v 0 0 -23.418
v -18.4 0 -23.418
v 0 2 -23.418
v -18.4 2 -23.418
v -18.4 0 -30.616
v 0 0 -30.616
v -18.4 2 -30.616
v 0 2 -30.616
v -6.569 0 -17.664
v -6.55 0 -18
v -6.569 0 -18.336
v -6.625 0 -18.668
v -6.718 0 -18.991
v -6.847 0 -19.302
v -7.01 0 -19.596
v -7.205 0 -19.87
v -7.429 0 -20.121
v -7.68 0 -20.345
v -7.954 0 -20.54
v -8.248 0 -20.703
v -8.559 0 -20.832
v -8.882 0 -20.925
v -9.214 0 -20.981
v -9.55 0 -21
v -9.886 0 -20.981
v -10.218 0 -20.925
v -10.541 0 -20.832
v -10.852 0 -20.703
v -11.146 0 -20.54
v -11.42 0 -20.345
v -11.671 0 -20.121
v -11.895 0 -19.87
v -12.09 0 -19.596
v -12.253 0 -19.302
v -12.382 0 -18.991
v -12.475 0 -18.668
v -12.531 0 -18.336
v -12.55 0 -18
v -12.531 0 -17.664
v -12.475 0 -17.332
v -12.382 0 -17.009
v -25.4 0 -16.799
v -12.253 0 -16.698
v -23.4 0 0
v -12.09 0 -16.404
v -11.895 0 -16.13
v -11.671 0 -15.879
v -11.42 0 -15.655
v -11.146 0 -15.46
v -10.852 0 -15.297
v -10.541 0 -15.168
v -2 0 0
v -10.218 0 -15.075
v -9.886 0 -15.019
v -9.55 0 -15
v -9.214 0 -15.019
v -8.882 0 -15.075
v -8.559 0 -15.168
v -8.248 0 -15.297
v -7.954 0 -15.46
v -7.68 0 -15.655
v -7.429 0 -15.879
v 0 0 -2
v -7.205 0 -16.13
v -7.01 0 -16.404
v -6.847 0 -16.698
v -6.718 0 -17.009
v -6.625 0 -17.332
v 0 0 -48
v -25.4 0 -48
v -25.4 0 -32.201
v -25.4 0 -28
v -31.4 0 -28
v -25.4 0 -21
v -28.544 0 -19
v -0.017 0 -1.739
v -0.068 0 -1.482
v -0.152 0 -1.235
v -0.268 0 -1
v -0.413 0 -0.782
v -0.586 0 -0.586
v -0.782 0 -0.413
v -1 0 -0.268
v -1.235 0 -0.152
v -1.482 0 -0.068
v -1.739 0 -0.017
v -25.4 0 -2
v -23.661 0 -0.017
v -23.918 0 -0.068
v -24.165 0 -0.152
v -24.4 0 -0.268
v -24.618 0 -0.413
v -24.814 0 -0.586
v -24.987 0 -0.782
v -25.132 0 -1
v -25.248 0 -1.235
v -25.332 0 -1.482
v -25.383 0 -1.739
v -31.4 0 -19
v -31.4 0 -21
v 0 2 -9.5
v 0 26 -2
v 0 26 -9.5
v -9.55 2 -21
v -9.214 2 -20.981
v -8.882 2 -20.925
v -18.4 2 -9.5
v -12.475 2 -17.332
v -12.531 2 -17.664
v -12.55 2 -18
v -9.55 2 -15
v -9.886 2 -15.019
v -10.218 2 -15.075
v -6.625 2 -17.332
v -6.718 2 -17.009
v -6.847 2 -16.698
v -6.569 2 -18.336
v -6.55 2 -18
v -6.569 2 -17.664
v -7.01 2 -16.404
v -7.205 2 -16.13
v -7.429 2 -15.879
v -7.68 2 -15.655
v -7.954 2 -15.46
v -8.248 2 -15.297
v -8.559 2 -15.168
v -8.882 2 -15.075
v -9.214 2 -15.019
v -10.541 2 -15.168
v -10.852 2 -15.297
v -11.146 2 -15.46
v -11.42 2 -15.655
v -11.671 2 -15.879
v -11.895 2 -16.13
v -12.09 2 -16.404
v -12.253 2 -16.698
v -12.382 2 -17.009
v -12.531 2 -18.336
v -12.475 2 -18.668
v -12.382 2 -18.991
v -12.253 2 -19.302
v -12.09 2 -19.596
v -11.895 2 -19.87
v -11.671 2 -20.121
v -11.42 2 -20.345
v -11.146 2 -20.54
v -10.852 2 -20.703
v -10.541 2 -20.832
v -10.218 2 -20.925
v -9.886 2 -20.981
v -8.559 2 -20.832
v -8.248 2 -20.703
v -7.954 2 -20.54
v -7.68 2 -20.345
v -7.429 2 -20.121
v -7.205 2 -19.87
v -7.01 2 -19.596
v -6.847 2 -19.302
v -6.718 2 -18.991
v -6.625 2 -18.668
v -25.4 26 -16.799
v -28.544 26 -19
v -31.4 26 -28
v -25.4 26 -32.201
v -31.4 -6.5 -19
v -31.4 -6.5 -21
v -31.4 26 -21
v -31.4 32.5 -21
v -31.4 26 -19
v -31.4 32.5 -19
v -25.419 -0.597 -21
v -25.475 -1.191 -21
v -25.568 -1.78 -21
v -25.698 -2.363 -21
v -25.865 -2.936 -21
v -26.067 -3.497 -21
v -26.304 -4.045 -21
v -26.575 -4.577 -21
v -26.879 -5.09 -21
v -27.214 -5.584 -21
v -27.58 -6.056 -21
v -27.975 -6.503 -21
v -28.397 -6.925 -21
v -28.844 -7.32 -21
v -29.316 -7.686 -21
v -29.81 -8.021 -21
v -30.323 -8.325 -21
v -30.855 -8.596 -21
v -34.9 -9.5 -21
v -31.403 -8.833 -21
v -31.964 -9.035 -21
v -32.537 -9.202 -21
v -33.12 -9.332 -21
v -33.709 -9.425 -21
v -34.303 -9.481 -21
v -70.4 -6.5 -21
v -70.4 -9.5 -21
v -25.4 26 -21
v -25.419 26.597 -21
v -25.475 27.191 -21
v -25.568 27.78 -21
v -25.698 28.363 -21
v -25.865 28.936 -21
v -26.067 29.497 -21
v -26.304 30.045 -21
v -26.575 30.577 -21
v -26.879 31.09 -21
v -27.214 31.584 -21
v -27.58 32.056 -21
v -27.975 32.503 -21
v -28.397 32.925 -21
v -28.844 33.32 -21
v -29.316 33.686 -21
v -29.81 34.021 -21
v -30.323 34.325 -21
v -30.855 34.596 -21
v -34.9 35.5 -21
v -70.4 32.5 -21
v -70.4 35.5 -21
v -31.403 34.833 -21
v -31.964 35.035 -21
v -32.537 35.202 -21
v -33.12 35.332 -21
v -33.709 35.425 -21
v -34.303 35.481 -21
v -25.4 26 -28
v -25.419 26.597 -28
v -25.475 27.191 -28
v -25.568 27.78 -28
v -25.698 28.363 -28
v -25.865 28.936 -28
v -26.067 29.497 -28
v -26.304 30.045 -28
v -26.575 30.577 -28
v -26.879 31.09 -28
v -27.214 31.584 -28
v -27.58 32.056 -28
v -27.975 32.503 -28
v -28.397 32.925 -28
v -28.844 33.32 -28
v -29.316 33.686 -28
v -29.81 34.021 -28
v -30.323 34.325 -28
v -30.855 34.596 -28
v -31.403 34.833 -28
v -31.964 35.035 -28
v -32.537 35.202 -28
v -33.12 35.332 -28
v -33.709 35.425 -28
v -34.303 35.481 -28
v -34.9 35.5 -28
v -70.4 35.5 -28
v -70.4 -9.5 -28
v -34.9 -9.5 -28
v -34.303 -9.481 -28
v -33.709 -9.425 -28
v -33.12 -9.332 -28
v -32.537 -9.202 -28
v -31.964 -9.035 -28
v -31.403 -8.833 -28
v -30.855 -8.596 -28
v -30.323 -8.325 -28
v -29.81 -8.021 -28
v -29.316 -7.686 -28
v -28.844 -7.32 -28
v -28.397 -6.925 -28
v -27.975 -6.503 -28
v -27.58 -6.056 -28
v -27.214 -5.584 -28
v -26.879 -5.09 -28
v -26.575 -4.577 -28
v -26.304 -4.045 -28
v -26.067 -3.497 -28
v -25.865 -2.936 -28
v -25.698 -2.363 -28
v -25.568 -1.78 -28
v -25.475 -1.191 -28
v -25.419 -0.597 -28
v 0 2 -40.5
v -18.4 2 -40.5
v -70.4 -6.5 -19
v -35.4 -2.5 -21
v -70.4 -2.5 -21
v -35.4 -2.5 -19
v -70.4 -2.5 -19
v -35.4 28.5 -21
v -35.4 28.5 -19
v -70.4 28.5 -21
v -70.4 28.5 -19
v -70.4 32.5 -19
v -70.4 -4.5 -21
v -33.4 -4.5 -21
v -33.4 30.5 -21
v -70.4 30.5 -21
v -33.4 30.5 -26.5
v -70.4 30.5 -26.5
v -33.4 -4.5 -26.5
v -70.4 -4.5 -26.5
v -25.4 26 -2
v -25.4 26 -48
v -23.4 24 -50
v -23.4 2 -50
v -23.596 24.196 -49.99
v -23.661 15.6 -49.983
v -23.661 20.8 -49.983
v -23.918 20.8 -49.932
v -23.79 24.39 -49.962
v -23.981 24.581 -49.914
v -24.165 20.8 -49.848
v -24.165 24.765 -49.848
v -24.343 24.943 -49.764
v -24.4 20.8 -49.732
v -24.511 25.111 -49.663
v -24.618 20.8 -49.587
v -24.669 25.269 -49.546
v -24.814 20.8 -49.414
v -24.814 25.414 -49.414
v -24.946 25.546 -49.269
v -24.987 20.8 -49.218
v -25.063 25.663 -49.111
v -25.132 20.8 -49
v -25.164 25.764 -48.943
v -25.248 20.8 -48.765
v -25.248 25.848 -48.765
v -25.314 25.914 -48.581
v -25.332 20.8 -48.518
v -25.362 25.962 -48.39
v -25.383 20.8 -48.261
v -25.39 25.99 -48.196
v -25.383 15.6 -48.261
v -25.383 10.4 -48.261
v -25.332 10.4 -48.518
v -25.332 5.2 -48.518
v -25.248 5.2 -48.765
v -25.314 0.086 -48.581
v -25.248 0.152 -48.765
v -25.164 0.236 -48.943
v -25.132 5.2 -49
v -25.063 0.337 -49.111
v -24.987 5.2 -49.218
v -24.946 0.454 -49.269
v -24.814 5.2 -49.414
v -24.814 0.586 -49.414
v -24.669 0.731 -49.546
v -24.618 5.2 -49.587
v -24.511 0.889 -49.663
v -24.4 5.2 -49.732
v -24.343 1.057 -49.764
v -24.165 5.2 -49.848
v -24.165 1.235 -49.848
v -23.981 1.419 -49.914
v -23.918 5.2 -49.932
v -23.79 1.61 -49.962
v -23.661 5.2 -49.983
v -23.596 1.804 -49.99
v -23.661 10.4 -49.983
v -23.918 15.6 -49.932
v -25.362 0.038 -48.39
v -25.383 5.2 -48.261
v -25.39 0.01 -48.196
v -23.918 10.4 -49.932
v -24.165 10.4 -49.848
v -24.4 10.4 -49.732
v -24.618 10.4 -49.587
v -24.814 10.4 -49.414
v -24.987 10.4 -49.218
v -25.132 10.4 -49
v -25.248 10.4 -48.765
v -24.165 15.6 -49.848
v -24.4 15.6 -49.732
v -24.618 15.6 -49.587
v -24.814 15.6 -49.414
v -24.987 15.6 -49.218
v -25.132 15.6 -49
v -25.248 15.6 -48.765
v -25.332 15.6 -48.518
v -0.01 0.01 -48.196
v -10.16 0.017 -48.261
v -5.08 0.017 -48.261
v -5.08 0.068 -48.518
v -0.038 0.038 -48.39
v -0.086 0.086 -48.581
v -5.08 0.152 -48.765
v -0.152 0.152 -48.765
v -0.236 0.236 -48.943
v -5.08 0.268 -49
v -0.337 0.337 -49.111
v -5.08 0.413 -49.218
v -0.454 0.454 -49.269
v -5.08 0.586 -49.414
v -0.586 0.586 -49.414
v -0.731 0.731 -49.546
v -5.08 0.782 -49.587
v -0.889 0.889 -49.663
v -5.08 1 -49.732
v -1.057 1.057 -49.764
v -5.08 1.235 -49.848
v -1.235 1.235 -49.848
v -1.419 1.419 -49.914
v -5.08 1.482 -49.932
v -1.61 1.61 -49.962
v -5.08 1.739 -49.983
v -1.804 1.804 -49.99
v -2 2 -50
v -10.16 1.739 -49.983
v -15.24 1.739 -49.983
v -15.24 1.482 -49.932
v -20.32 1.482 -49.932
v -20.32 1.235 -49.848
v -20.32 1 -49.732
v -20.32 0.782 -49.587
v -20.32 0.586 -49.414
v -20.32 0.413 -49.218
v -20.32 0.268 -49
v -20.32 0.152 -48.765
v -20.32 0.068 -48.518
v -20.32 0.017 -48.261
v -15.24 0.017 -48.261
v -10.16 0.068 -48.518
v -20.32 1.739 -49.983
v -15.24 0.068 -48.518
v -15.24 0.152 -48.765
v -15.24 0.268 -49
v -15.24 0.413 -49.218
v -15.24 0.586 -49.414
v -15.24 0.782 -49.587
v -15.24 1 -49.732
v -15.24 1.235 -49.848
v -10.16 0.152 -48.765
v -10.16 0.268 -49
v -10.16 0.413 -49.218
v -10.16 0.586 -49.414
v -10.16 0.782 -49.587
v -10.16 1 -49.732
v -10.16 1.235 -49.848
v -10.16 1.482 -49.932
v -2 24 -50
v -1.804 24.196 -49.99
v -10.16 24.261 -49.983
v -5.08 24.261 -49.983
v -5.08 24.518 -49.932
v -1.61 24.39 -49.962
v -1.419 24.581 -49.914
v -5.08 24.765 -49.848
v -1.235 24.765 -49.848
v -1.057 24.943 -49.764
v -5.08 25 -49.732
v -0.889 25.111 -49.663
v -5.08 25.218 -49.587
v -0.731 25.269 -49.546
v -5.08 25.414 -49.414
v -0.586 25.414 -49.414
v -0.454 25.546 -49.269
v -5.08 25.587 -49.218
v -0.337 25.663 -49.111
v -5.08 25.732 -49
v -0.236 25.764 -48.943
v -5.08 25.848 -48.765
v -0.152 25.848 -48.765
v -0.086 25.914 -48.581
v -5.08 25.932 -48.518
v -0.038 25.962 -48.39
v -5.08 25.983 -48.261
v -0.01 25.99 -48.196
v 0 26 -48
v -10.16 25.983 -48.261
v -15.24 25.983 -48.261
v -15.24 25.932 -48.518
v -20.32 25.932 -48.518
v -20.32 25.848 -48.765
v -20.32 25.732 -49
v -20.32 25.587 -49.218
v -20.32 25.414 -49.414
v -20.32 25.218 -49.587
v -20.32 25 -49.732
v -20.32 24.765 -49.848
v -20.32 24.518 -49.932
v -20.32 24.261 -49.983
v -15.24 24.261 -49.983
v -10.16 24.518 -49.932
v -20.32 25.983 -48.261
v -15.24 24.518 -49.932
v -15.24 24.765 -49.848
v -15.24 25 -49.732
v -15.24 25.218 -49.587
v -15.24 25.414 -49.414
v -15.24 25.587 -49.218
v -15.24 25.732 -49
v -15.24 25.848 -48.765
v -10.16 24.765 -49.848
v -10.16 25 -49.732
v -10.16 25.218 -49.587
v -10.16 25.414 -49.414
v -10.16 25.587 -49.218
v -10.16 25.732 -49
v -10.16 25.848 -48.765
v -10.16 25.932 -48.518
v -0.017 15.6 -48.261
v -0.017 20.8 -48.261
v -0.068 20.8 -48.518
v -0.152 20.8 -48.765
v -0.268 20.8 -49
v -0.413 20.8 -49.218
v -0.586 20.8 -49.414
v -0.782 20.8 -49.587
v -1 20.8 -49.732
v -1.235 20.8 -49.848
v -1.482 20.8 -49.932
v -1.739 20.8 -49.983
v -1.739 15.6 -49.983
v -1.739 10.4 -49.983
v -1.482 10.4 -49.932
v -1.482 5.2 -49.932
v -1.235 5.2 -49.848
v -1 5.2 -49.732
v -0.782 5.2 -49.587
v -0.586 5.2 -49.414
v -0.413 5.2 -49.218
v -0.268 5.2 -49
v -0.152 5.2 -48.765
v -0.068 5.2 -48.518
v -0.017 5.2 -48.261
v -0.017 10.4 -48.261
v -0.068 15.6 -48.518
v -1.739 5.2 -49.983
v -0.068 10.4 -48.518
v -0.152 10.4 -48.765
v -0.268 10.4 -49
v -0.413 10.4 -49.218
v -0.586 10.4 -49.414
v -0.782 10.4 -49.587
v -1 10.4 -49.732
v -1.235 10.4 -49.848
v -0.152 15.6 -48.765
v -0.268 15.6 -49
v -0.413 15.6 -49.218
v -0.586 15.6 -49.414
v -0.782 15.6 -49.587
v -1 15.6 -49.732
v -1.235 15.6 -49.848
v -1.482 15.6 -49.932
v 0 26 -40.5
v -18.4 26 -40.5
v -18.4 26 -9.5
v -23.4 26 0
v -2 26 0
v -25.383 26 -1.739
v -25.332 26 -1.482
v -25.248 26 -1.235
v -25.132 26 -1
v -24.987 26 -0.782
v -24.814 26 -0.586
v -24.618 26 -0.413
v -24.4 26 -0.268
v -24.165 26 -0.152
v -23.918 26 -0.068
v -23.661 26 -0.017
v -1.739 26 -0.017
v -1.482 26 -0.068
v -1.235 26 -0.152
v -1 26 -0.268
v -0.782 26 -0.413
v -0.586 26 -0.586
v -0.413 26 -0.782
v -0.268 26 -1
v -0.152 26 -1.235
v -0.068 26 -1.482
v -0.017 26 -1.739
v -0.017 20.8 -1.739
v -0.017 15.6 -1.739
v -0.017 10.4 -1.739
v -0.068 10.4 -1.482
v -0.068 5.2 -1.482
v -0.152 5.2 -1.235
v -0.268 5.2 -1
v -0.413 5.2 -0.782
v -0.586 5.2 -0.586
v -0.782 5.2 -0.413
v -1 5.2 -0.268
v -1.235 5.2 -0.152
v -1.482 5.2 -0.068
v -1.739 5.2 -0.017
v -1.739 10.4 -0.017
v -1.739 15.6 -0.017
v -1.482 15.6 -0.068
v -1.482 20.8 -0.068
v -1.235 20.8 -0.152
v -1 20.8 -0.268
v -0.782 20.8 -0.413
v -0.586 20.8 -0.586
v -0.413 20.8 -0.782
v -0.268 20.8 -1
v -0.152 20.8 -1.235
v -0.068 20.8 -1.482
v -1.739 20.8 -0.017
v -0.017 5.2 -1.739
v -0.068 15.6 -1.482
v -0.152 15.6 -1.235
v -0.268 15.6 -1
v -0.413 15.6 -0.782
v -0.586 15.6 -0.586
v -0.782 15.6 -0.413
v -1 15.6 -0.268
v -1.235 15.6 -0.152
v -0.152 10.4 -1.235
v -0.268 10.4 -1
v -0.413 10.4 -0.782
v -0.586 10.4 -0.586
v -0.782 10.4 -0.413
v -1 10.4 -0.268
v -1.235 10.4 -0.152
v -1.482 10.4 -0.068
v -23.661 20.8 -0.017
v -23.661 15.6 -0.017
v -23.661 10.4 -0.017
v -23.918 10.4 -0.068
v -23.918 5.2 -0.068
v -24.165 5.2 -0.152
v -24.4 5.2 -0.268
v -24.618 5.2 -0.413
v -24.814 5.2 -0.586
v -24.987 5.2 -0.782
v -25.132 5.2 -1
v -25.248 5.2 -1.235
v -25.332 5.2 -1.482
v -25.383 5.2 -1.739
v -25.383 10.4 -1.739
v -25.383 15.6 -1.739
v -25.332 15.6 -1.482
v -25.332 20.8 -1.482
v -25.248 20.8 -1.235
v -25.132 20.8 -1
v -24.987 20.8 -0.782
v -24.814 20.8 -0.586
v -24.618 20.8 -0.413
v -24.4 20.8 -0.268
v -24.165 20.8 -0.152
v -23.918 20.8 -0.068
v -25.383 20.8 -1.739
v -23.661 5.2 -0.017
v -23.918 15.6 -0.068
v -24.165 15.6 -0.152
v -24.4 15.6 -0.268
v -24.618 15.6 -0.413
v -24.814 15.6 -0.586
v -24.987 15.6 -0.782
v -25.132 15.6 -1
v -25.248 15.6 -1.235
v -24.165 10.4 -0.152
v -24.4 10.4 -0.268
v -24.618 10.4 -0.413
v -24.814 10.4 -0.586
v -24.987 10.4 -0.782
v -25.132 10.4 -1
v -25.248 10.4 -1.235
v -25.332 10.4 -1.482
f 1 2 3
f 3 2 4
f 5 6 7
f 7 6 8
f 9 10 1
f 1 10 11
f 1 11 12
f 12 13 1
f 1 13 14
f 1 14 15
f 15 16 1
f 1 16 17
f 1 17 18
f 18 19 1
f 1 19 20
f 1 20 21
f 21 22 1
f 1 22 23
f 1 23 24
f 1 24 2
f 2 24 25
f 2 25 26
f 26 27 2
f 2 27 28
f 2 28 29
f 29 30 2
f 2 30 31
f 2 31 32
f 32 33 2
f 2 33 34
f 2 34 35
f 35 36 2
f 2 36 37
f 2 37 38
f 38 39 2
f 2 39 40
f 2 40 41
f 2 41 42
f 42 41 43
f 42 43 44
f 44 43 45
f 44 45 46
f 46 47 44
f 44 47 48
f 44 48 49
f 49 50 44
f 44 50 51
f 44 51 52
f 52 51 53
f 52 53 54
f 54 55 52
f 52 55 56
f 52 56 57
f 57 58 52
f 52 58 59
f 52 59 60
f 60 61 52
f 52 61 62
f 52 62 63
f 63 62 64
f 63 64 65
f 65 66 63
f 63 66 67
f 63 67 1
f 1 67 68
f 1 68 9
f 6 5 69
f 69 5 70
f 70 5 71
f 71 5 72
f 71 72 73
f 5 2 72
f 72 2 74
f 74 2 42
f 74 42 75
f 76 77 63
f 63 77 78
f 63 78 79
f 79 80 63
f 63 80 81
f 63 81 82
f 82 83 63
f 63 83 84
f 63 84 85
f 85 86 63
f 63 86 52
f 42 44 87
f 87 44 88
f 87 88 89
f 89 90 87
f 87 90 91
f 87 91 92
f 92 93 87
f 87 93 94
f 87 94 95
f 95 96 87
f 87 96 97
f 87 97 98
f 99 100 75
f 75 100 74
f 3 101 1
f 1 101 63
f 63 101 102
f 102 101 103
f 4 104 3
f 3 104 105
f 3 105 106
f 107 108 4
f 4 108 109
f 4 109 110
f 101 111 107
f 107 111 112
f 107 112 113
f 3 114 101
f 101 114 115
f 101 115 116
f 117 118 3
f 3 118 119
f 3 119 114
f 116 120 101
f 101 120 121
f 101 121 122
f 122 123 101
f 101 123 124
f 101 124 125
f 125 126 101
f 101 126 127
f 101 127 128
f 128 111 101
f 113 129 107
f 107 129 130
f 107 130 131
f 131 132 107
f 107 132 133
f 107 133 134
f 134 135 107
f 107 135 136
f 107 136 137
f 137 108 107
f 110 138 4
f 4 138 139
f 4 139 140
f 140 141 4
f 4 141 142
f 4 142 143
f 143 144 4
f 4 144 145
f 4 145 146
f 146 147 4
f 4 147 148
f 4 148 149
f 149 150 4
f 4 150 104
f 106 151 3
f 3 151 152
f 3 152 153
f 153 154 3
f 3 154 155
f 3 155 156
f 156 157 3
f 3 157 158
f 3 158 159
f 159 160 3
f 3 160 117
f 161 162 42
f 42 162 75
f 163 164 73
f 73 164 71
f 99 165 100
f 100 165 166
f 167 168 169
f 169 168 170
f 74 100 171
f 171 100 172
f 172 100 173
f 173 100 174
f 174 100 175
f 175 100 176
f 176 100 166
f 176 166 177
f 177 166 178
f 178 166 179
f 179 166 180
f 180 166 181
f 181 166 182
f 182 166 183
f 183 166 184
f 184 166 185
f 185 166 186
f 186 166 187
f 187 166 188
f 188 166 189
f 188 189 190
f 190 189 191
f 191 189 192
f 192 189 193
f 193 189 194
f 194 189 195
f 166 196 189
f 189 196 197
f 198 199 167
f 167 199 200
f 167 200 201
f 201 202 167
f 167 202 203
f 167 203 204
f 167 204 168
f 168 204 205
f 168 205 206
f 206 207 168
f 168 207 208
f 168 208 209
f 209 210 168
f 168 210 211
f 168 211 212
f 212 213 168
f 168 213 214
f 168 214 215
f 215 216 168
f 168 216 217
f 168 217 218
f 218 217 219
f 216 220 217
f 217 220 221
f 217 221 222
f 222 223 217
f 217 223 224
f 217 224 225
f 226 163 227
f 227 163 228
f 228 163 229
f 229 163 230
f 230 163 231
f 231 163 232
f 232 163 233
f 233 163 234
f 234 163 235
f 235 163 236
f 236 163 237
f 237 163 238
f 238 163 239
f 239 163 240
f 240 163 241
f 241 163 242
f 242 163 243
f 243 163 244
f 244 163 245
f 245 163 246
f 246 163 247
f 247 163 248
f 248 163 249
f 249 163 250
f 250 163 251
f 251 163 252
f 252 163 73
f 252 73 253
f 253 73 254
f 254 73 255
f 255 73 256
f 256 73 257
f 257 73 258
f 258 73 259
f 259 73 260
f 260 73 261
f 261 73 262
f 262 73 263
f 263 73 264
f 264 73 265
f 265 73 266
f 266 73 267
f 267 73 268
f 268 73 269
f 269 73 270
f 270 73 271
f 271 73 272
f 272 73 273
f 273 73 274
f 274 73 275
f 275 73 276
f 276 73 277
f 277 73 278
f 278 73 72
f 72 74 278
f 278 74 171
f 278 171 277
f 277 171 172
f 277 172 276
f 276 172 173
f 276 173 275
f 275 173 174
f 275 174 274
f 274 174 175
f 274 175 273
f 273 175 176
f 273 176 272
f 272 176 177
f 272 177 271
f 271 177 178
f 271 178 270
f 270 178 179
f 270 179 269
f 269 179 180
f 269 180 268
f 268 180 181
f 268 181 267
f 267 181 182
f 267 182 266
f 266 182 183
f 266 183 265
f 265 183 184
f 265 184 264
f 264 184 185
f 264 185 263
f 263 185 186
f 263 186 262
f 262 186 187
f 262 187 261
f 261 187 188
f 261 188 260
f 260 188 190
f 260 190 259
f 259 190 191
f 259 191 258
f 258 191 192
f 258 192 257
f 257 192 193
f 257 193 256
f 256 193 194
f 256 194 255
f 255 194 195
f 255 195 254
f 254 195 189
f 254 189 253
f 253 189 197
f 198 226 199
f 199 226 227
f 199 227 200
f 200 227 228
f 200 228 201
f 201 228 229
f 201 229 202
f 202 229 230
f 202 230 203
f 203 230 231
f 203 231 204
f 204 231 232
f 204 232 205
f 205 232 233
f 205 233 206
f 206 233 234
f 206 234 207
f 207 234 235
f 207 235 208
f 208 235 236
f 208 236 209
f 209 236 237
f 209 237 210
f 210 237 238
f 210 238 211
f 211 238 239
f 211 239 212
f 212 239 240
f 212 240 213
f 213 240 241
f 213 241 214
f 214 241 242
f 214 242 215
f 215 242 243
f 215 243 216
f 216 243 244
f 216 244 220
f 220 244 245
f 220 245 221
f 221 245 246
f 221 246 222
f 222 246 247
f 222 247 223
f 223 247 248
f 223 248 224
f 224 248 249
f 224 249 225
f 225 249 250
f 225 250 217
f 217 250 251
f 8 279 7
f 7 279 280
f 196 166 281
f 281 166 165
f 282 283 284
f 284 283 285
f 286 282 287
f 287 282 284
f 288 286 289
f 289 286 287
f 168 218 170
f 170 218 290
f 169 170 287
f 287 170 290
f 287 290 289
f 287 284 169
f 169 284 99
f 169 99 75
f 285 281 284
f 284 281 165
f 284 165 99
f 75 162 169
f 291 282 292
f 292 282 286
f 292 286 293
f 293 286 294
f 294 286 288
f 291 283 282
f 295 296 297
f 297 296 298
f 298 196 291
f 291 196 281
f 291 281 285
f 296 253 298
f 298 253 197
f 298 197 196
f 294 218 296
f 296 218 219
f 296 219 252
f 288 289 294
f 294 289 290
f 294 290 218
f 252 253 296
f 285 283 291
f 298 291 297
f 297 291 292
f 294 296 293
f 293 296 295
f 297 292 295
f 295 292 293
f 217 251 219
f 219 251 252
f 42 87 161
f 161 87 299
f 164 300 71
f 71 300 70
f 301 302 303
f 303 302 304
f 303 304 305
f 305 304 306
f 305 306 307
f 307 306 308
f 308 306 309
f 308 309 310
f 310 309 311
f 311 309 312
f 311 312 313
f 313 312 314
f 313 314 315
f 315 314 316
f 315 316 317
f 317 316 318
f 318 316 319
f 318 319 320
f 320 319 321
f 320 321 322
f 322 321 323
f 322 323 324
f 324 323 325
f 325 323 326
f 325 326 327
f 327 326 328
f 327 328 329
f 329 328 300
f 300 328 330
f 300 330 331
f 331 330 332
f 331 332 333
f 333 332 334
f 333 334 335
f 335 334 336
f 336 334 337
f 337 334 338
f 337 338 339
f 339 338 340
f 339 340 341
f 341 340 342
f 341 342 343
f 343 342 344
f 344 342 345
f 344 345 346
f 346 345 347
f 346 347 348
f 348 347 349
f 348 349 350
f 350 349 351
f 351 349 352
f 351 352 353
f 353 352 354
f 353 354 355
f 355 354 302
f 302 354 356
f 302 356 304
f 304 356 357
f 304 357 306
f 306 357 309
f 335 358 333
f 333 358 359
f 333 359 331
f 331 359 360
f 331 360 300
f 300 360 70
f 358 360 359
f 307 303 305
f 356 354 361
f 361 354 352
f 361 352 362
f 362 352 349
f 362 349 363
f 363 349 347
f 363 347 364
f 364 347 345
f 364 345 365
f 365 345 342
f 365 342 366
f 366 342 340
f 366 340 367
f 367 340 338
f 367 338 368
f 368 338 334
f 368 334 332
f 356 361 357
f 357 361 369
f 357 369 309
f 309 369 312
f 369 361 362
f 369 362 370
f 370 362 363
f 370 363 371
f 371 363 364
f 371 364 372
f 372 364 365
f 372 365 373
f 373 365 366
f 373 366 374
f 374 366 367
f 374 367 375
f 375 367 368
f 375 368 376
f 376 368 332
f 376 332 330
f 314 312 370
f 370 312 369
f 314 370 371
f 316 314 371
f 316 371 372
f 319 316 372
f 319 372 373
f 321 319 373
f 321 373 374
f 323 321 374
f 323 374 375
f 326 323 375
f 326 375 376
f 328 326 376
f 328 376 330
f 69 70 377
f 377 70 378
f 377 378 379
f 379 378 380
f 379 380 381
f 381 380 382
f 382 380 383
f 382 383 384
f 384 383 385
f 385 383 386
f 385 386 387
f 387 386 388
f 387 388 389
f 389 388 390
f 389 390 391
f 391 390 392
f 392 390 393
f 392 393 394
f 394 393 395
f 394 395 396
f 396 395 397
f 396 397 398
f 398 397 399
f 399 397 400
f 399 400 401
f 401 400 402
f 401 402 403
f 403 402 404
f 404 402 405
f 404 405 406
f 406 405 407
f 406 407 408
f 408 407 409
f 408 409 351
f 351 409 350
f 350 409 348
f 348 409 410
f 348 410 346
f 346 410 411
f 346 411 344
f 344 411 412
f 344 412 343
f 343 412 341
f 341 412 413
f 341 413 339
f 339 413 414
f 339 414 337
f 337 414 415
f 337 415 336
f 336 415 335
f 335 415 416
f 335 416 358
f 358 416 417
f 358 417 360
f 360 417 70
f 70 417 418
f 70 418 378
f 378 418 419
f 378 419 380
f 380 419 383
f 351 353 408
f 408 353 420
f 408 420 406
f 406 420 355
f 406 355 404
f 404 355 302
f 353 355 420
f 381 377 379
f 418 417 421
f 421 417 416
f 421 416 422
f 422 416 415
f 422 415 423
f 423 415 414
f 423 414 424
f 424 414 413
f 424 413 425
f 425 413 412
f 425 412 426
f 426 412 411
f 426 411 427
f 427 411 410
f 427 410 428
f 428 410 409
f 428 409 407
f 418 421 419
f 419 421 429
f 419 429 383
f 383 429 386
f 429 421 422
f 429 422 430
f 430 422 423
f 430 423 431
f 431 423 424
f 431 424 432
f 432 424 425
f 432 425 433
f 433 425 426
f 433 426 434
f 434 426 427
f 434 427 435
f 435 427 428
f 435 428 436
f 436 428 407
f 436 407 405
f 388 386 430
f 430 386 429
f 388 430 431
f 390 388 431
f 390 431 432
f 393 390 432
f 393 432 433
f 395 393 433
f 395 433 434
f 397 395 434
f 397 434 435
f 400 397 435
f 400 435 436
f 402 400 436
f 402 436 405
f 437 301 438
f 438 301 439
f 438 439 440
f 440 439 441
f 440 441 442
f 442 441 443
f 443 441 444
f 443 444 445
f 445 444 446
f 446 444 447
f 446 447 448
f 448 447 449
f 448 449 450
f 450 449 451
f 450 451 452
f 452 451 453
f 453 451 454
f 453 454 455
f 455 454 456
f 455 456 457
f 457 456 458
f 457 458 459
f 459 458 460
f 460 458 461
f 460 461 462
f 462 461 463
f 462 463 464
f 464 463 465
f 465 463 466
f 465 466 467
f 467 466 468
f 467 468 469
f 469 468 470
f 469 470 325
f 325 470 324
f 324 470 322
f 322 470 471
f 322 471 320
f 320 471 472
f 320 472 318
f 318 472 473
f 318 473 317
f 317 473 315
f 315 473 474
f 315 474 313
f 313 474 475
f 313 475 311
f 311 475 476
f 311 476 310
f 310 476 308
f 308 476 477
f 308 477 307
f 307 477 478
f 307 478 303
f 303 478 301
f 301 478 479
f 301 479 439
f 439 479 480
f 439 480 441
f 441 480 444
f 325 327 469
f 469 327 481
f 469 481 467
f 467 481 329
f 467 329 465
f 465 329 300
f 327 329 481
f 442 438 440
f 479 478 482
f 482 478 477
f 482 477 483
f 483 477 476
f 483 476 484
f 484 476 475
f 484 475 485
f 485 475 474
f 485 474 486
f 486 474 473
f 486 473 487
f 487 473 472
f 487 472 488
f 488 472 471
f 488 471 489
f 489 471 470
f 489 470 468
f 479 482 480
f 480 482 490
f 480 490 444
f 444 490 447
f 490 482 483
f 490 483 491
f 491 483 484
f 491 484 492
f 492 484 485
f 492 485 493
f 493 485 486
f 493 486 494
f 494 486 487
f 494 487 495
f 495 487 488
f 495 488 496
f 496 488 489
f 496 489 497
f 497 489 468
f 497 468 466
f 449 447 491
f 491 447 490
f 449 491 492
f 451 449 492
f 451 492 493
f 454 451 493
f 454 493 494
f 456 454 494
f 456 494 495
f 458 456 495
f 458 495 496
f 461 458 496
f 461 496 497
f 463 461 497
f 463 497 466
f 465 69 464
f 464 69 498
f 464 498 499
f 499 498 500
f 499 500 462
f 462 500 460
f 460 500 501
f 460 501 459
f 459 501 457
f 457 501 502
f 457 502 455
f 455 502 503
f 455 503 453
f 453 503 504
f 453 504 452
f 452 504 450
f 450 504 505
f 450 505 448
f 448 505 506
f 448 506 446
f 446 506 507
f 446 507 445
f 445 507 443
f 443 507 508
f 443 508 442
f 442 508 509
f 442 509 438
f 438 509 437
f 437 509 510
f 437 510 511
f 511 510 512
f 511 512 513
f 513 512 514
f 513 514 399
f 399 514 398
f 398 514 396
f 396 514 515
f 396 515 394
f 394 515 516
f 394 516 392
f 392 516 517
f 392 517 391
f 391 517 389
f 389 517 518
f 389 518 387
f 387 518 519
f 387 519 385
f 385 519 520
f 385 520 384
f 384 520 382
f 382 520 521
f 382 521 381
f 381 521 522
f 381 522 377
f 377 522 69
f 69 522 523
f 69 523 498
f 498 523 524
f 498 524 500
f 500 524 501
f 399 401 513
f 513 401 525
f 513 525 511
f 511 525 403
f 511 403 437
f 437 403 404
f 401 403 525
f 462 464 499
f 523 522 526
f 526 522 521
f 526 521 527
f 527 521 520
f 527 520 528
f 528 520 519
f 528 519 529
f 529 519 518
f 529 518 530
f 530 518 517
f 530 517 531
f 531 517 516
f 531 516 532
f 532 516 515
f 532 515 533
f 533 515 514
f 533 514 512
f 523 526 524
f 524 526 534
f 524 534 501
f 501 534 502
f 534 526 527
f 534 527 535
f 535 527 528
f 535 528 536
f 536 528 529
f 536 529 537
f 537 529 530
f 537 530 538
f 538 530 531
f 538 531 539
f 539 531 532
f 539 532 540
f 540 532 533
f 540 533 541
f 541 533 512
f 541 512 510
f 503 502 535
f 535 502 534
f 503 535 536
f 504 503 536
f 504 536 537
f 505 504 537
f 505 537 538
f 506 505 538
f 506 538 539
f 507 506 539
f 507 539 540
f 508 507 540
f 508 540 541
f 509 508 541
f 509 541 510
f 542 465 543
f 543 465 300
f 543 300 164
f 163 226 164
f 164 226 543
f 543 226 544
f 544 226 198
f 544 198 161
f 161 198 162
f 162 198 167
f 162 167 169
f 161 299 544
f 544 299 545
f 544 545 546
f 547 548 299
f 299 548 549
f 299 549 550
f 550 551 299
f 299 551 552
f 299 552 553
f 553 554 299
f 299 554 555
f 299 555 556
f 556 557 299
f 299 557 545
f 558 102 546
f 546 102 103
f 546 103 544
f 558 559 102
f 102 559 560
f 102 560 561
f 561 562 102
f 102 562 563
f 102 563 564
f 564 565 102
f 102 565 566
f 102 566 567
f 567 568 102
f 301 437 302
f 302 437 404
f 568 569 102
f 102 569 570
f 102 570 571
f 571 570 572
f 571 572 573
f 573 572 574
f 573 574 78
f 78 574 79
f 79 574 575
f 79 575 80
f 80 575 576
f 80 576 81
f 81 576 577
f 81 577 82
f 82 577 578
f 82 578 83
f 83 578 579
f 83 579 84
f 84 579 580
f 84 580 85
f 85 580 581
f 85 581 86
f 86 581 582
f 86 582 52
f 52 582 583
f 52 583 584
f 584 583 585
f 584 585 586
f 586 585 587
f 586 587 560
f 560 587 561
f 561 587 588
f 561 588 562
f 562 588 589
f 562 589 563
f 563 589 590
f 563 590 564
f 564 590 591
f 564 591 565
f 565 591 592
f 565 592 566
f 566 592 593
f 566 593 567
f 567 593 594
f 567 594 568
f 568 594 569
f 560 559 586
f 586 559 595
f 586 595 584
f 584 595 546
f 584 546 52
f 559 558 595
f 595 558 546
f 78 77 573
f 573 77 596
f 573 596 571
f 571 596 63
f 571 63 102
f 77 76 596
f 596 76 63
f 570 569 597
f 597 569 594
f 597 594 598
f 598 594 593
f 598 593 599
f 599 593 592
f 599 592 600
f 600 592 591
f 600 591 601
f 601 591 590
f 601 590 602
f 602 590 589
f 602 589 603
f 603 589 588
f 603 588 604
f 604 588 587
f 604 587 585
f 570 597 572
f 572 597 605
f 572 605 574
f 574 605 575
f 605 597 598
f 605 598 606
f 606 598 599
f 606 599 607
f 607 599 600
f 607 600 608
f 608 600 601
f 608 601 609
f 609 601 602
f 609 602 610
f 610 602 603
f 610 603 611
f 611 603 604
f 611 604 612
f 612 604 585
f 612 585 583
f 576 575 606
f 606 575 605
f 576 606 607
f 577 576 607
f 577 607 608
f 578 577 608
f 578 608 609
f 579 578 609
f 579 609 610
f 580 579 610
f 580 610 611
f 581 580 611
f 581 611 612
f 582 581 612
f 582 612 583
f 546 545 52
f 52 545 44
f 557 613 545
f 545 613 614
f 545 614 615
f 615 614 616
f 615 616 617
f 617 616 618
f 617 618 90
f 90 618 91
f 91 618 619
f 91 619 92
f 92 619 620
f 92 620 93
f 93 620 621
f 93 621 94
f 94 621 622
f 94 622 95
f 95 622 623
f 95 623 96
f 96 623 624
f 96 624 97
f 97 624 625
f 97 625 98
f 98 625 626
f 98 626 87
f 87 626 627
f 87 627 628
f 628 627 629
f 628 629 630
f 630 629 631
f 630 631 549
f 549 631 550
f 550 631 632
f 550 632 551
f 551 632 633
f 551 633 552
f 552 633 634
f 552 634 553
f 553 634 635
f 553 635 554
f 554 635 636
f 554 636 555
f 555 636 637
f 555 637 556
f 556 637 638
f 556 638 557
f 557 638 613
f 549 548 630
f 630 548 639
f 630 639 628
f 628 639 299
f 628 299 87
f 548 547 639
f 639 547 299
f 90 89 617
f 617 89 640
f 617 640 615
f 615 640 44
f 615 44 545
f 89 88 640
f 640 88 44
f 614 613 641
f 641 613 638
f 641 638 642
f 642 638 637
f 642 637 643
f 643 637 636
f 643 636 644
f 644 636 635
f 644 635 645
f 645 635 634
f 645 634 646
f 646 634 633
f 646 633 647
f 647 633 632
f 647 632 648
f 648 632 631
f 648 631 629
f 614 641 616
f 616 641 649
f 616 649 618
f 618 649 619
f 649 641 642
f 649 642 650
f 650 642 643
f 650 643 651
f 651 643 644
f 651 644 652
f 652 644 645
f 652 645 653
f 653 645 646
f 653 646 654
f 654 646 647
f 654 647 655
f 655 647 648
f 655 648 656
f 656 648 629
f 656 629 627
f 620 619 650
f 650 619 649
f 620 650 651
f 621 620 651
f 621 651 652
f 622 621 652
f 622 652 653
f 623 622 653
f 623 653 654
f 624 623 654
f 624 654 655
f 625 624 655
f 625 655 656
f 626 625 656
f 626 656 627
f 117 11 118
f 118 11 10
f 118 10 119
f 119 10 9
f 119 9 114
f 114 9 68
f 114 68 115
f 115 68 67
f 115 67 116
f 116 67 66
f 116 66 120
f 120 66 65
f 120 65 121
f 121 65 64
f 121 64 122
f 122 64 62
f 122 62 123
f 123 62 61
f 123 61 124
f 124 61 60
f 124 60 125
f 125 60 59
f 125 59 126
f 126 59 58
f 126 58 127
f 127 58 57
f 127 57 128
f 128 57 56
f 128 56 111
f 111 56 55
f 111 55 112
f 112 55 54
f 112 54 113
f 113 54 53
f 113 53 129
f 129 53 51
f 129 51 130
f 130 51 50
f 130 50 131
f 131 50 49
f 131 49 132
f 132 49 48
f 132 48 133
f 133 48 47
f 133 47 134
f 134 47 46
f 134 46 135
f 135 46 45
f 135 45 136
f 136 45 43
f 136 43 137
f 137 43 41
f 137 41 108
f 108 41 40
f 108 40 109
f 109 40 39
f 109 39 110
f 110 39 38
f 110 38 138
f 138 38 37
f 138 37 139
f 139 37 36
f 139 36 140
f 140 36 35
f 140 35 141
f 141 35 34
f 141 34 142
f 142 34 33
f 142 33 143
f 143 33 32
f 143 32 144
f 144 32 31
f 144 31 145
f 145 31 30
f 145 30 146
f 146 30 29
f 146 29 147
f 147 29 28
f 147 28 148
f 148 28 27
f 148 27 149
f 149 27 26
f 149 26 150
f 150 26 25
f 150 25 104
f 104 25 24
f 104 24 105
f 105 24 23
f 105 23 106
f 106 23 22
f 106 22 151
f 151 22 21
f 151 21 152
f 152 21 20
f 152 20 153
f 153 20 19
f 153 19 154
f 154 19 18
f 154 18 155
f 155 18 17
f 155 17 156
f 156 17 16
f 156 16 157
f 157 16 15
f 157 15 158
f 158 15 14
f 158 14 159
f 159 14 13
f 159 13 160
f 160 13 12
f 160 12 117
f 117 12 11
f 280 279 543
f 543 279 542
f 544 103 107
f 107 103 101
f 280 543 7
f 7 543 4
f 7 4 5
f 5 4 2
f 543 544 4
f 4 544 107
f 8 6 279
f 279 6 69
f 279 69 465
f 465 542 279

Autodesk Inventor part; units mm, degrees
ref_plane "YZ Plane" through (0, 0, 0) normal (1, 0, 0) x (0, 1, 0)
ref_plane "XZ Plane" through (0, 0, 0) normal (0, 1, 0) x (-1, 0, 0)
ref_plane "XY Plane" through (0, 0, 0) normal (0, 0, 1) x (1, 0, 0)
sketch "Sketch1" plane through (0, 0, 0) normal (0, 1, 0) x (-1, 0, 0)
  line L0 (0, 0) -> (25.4, 0)
  line L1 (25.4, 0) -> (25.4, -50)
  line L2 (25.4, -50) -> (0, -50)
  line L3 (0, -50) -> (0, 0)
  dimension "d0" = 25.4
  dimension "d1" = 50
extrude "Extrusion1" add sketch "Sketch1" along normal blind 5
sketch "Sketch2" plane through (0, 5, 0) normal (0, 1, 0) x (1, 0, 0)
  line L0 (-25.4, 0) -> (0, 0) projected
  line L1 (-25.4, 0) -> (0, 0)
  line L2 (0, 0) -> (0, 9.5)
  line L3 (0, 9.5) -> (-25.4, 9.5)
  line L4 (-25.4, 9.5) -> (-25.4, 0)
  line L5 (0, 0) -> (0, 50) construction
  line L6 (-25.4, 50) -> (-25.4, 0) construction
  line L7 (0, 50) -> (-25.4, 50)
  line L8 (-25.4, 50) -> (-25.4, 40.5)
  line L9 (-25.4, 40.5) -> (0, 40.5)
  line L10 (0, 40.5) -> (0, 50)
  line L11 (-18.4, 4) -> (-3.2, 4) construction
  line L12 (-3.2, 4) -> (-3.2, 46) construction
  line L13 (-3.2, 46) -> (-18.4, 46) construction
  line L14 (-18.4, 46) -> (-18.4, 4) construction
  line L15 (-10.8, 6.25) -> (-10.8, 43.75) construction
  line L16 (-3.2, 9.5) -> (-18.4, 9.5) construction
  line L17 (-18.4, 40.5) -> (-3.2, 40.5) construction
  line L18 (-12.3588, 9.5) -> (-12.3588, 40.5) construction
  line L19 (-25.4, 40.5) -> (-18.4, 40.5)
  line L20 (-18.4, 40.5) -> (-18.4, 9.5)
  line L21 (-18.4, 9.5) -> (-25.4, 9.5)
  line L22 (-25.4, 9.5) -> (-25.4, 40.5)
  point P0 (-10.8, 25)
  point P1 (-18.4, 25)
  point P2 (-10.8, 4)
  point P3 (-12.3588, 25)
  dimension "d4" = 42
  dimension "d5" = 15.2
  dimension "d6" = 37.5
  dimension "d7" = 31
  dimension "d14" = 7
extrude "Extrusion2" add sketch "Sketch2" along normal blind 21
sketch "Sketch6" plane through (0, 0, 0) normal (0, -1, 0) x (1, 0, 0)
  circle A0 centre (-9.55, -18) radius 3
  line L0 (0, -50) -> (0, 0) projected
  line L1 (0, 0) -> (-25.4, 0) projected
  dimension "d24" = 6
  dimension "d25" = 9.55
  dimension "d26" = 18
extrude "Extrusion6" cut sketch "Sketch6" against normal up to next
fillet "Fillet1" radius 2 6 edges at (-25.4, 13, 0) (0, 13, 0) (-25.4, 13, -50) (-12.7, 0, -50) (-12.7, 26, -50) (0, 13, -50)
sketch "Sketch8" plane through (-25.4, 0, -48) normal (-1, 0, 0) x (0, 0, 1)
  line L0 (38.5, 26) -> (7.5, 26) projected
  line L1 (46, 0) -> (0, 0) projected
  line L2 (23, 13) -> (23, 35.5)
  line L3 (23, 13) -> (23, -9.5)
  line L4 (23, 35.5) -> (27, 35.5)
  line L5 (23, -9.5) -> (20, -9.5)
  line L6 (20, -9.5) -> (27, -9.5)
  line L7 (27, -9.5) -> (27, 35.5)
  line L8 (27, 35.5) -> (20, 35.5)
  line L9 (20, 35.5) -> (20, -9.5)
  point P0 (48, 0)
  point P1 (23, -9.5)
  point P2 (23, 35.5)
  dimension "d33" = 22.5
  dimension "d34" = 22.5
  dimension "d35" = 4
  dimension "d36" = 3
extrude "Extrusion8" add sketch "Sketch8" along normal blind 45
sketch "Sketch9" plane through (-70.4, 0, -48) normal (-1, 0, 0) x (0, 0, 1)
  line L0 (27, -9.5) -> (27, 35.5) projected
  line L1 (20, 35.5) -> (20, -9.5) projected
  line L2 (23.5, 13) -> (23.5, -4.5)
  line L3 (23.5, -4.5) -> (27, -4.5)
  line L4 (23.5, 13) -> (23.5, 30.5)
  line L5 (23.5, 30.5) -> (27, 30.5)
  line L6 (27, 30.5) -> (27, -4.5)
  point P0 (48, 0)
  dimension "d39" = 17.5
  dimension "d40" = 17.5
extrude "Extrusion9" cut sketch "Sketch9" against normal blind 37
sketch "Sketch10" plane through (-70.4, -4.5, -24.5) normal (0, 0, 1) x (1, 0, 0)
  line L0 (0, 0) -> (0, 35) projected
  line L1 (37, 35) -> (37, 0) projected
  line L2 (0, 0) -> (37, 0)
  line L3 (37, 0) -> (37, 35)
  line L4 (37, 35) -> (0, 35)
  line L5 (0, 35) -> (0, 0)
  point P0 (70.4, 4.5)
extrude "Extrusion10" cut sketch "Sketch10" against normal blind 2
sketch "Sketch11" plane through (-25.4, -9.5, -21) normal (0, 0, 1) x (1, 0, 0)
  line L0 (-8, 5) -> (-45, 5) projected
  line L1 (-45, 5) -> (-45, 3)
  line L2 (-45, 0) -> (-45, 5) projected
  line L3 (-6, 5) -> (-6, 3)
  line L4 (-6, 3) -> (-45, 3)
  line L5 (-8, 40) -> (-8, 5) projected
  line L6 (-6, 5) -> (-6, 42)
  line L7 (-6, 42) -> (-45, 42)
  line L8 (-45, 45) -> (-45, 0) projected
  line L9 (-45, 40) -> (-8, 40) projected
  line L10 (-45, 42) -> (-45, 40)
  line L11 (-45, 40) -> (-45, 38)
  line L12 (-45, 38) -> (-10, 38)
  line L13 (-10, 38) -> (-10, 7)
  line L14 (-10, 7) -> (-45, 7)
  line L15 (-45, 5) -> (-45, 7)
  point P0 (25.4, 9.5)
  dimension "d45" = 2
  dimension "d46" = 2
  dimension "d48" = 2
  dimension "d49" = 35
  dimension "d50" = 31
extrude "Extrusion11" add sketch "Sketch11" along normal blind 2 contours L5 L9 L8 L7 L6 L3 L4 L1 L0 | L0 L8 L14 L13 L12 L9 L5
sketch "Sketch12" plane through (0, 5, 0) normal (0, 1, 0) x (1, 0, 0)
  line L0 (-18.4, 40.5) -> (-18.4, 9.5) projected
  line L1 (0, 40.5) -> (-18.4, 40.5) projected
  line L2 (-18.4, 9.5) -> (0, 9.5)
  line L3 (0, 9.5) -> (0, 40.5)
  line L4 (0, 40.5) -> (-18.4, 40.5)
  line L5 (-18.4, 40.5) -> (-18.4, 9.5)
  circle A0 centre (-9.55, 18) radius 3 projected
  circle A1 centre (-9.55, 18) radius 3
  point P0 (0, 0)
extrude "Extrusion12" cut sketch "Sketch12" against normal blind 3
fillet "Fillet2" radius 9.5 2 edges at (-25.4, 35.5, -24.5) (-25.4, -9.5, -24.5)
sketch "Sketch13" plane through (0, 0, 0) normal (0, -1, 0) x (1, 0, 0)
  line L0 (-31.4, -21) -> (-31.4, -19) projected
  line L1 (-28.5437, -19) -> (-25.4, -16.7988)
  line L2 (-25.4, -2) -> (-25.4, -21) projected
  line L3 (-31.4, -21) -> (-24.0754, -21) construction
  line L4 (-25.4, -16.7988) -> (-25.4, -21)
  line L5 (-25.4, -21) -> (-31.4, -21)
  line L6 (-31.4, -19) -> (-70.4, -19) projected
  line L7 (-31.4, -19) -> (-28.5437, -19)
  line L8 (-25.4, -28) -> (-34.9, -28) projected
  line L9 (-31.4, -28) -> (-25.4, -32.2012)
  line L10 (-25.4, -28) -> (-25.4, -48) projected
  line L11 (-31.4, -28) -> (-24.0754, -28) construction
  line L12 (-25.4, -32.2012) -> (-25.4, -28)
  line L13 (-25.4, -28) -> (-31.4, -28)
  point P0 (0, 0)
  dimension "d56" = 35
  dimension "d57" = 35
extrude "Extrusion13" add sketch "Sketch13" against normal up to surface (26 mm away)
sketch "Sketch14" plane through (0, 2, 0) normal (0, 1, 0) x (1, 0, 0)
  line L0 (-18.4, 9.5) -> (-18.4, 40.5) projected
  line L1 (0, 40.5) -> (0, 9.5) projected
  line L2 (-18.4, 23.418) -> (0, 23.418)
  line L3 (0, 23.418) -> (0, 30.6155)
  line L4 (0, 30.6155) -> (-18.4, 30.6155)
  line L5 (-18.4, 30.6155) -> (-18.4, 23.418)
  point P0 (0, 0)
  point P1 (0, 23.418)
extrude "Extrusion14" cut sketch "Sketch14" against normal through all
properties part number "Tilt_Camera_Servo_Mount"
